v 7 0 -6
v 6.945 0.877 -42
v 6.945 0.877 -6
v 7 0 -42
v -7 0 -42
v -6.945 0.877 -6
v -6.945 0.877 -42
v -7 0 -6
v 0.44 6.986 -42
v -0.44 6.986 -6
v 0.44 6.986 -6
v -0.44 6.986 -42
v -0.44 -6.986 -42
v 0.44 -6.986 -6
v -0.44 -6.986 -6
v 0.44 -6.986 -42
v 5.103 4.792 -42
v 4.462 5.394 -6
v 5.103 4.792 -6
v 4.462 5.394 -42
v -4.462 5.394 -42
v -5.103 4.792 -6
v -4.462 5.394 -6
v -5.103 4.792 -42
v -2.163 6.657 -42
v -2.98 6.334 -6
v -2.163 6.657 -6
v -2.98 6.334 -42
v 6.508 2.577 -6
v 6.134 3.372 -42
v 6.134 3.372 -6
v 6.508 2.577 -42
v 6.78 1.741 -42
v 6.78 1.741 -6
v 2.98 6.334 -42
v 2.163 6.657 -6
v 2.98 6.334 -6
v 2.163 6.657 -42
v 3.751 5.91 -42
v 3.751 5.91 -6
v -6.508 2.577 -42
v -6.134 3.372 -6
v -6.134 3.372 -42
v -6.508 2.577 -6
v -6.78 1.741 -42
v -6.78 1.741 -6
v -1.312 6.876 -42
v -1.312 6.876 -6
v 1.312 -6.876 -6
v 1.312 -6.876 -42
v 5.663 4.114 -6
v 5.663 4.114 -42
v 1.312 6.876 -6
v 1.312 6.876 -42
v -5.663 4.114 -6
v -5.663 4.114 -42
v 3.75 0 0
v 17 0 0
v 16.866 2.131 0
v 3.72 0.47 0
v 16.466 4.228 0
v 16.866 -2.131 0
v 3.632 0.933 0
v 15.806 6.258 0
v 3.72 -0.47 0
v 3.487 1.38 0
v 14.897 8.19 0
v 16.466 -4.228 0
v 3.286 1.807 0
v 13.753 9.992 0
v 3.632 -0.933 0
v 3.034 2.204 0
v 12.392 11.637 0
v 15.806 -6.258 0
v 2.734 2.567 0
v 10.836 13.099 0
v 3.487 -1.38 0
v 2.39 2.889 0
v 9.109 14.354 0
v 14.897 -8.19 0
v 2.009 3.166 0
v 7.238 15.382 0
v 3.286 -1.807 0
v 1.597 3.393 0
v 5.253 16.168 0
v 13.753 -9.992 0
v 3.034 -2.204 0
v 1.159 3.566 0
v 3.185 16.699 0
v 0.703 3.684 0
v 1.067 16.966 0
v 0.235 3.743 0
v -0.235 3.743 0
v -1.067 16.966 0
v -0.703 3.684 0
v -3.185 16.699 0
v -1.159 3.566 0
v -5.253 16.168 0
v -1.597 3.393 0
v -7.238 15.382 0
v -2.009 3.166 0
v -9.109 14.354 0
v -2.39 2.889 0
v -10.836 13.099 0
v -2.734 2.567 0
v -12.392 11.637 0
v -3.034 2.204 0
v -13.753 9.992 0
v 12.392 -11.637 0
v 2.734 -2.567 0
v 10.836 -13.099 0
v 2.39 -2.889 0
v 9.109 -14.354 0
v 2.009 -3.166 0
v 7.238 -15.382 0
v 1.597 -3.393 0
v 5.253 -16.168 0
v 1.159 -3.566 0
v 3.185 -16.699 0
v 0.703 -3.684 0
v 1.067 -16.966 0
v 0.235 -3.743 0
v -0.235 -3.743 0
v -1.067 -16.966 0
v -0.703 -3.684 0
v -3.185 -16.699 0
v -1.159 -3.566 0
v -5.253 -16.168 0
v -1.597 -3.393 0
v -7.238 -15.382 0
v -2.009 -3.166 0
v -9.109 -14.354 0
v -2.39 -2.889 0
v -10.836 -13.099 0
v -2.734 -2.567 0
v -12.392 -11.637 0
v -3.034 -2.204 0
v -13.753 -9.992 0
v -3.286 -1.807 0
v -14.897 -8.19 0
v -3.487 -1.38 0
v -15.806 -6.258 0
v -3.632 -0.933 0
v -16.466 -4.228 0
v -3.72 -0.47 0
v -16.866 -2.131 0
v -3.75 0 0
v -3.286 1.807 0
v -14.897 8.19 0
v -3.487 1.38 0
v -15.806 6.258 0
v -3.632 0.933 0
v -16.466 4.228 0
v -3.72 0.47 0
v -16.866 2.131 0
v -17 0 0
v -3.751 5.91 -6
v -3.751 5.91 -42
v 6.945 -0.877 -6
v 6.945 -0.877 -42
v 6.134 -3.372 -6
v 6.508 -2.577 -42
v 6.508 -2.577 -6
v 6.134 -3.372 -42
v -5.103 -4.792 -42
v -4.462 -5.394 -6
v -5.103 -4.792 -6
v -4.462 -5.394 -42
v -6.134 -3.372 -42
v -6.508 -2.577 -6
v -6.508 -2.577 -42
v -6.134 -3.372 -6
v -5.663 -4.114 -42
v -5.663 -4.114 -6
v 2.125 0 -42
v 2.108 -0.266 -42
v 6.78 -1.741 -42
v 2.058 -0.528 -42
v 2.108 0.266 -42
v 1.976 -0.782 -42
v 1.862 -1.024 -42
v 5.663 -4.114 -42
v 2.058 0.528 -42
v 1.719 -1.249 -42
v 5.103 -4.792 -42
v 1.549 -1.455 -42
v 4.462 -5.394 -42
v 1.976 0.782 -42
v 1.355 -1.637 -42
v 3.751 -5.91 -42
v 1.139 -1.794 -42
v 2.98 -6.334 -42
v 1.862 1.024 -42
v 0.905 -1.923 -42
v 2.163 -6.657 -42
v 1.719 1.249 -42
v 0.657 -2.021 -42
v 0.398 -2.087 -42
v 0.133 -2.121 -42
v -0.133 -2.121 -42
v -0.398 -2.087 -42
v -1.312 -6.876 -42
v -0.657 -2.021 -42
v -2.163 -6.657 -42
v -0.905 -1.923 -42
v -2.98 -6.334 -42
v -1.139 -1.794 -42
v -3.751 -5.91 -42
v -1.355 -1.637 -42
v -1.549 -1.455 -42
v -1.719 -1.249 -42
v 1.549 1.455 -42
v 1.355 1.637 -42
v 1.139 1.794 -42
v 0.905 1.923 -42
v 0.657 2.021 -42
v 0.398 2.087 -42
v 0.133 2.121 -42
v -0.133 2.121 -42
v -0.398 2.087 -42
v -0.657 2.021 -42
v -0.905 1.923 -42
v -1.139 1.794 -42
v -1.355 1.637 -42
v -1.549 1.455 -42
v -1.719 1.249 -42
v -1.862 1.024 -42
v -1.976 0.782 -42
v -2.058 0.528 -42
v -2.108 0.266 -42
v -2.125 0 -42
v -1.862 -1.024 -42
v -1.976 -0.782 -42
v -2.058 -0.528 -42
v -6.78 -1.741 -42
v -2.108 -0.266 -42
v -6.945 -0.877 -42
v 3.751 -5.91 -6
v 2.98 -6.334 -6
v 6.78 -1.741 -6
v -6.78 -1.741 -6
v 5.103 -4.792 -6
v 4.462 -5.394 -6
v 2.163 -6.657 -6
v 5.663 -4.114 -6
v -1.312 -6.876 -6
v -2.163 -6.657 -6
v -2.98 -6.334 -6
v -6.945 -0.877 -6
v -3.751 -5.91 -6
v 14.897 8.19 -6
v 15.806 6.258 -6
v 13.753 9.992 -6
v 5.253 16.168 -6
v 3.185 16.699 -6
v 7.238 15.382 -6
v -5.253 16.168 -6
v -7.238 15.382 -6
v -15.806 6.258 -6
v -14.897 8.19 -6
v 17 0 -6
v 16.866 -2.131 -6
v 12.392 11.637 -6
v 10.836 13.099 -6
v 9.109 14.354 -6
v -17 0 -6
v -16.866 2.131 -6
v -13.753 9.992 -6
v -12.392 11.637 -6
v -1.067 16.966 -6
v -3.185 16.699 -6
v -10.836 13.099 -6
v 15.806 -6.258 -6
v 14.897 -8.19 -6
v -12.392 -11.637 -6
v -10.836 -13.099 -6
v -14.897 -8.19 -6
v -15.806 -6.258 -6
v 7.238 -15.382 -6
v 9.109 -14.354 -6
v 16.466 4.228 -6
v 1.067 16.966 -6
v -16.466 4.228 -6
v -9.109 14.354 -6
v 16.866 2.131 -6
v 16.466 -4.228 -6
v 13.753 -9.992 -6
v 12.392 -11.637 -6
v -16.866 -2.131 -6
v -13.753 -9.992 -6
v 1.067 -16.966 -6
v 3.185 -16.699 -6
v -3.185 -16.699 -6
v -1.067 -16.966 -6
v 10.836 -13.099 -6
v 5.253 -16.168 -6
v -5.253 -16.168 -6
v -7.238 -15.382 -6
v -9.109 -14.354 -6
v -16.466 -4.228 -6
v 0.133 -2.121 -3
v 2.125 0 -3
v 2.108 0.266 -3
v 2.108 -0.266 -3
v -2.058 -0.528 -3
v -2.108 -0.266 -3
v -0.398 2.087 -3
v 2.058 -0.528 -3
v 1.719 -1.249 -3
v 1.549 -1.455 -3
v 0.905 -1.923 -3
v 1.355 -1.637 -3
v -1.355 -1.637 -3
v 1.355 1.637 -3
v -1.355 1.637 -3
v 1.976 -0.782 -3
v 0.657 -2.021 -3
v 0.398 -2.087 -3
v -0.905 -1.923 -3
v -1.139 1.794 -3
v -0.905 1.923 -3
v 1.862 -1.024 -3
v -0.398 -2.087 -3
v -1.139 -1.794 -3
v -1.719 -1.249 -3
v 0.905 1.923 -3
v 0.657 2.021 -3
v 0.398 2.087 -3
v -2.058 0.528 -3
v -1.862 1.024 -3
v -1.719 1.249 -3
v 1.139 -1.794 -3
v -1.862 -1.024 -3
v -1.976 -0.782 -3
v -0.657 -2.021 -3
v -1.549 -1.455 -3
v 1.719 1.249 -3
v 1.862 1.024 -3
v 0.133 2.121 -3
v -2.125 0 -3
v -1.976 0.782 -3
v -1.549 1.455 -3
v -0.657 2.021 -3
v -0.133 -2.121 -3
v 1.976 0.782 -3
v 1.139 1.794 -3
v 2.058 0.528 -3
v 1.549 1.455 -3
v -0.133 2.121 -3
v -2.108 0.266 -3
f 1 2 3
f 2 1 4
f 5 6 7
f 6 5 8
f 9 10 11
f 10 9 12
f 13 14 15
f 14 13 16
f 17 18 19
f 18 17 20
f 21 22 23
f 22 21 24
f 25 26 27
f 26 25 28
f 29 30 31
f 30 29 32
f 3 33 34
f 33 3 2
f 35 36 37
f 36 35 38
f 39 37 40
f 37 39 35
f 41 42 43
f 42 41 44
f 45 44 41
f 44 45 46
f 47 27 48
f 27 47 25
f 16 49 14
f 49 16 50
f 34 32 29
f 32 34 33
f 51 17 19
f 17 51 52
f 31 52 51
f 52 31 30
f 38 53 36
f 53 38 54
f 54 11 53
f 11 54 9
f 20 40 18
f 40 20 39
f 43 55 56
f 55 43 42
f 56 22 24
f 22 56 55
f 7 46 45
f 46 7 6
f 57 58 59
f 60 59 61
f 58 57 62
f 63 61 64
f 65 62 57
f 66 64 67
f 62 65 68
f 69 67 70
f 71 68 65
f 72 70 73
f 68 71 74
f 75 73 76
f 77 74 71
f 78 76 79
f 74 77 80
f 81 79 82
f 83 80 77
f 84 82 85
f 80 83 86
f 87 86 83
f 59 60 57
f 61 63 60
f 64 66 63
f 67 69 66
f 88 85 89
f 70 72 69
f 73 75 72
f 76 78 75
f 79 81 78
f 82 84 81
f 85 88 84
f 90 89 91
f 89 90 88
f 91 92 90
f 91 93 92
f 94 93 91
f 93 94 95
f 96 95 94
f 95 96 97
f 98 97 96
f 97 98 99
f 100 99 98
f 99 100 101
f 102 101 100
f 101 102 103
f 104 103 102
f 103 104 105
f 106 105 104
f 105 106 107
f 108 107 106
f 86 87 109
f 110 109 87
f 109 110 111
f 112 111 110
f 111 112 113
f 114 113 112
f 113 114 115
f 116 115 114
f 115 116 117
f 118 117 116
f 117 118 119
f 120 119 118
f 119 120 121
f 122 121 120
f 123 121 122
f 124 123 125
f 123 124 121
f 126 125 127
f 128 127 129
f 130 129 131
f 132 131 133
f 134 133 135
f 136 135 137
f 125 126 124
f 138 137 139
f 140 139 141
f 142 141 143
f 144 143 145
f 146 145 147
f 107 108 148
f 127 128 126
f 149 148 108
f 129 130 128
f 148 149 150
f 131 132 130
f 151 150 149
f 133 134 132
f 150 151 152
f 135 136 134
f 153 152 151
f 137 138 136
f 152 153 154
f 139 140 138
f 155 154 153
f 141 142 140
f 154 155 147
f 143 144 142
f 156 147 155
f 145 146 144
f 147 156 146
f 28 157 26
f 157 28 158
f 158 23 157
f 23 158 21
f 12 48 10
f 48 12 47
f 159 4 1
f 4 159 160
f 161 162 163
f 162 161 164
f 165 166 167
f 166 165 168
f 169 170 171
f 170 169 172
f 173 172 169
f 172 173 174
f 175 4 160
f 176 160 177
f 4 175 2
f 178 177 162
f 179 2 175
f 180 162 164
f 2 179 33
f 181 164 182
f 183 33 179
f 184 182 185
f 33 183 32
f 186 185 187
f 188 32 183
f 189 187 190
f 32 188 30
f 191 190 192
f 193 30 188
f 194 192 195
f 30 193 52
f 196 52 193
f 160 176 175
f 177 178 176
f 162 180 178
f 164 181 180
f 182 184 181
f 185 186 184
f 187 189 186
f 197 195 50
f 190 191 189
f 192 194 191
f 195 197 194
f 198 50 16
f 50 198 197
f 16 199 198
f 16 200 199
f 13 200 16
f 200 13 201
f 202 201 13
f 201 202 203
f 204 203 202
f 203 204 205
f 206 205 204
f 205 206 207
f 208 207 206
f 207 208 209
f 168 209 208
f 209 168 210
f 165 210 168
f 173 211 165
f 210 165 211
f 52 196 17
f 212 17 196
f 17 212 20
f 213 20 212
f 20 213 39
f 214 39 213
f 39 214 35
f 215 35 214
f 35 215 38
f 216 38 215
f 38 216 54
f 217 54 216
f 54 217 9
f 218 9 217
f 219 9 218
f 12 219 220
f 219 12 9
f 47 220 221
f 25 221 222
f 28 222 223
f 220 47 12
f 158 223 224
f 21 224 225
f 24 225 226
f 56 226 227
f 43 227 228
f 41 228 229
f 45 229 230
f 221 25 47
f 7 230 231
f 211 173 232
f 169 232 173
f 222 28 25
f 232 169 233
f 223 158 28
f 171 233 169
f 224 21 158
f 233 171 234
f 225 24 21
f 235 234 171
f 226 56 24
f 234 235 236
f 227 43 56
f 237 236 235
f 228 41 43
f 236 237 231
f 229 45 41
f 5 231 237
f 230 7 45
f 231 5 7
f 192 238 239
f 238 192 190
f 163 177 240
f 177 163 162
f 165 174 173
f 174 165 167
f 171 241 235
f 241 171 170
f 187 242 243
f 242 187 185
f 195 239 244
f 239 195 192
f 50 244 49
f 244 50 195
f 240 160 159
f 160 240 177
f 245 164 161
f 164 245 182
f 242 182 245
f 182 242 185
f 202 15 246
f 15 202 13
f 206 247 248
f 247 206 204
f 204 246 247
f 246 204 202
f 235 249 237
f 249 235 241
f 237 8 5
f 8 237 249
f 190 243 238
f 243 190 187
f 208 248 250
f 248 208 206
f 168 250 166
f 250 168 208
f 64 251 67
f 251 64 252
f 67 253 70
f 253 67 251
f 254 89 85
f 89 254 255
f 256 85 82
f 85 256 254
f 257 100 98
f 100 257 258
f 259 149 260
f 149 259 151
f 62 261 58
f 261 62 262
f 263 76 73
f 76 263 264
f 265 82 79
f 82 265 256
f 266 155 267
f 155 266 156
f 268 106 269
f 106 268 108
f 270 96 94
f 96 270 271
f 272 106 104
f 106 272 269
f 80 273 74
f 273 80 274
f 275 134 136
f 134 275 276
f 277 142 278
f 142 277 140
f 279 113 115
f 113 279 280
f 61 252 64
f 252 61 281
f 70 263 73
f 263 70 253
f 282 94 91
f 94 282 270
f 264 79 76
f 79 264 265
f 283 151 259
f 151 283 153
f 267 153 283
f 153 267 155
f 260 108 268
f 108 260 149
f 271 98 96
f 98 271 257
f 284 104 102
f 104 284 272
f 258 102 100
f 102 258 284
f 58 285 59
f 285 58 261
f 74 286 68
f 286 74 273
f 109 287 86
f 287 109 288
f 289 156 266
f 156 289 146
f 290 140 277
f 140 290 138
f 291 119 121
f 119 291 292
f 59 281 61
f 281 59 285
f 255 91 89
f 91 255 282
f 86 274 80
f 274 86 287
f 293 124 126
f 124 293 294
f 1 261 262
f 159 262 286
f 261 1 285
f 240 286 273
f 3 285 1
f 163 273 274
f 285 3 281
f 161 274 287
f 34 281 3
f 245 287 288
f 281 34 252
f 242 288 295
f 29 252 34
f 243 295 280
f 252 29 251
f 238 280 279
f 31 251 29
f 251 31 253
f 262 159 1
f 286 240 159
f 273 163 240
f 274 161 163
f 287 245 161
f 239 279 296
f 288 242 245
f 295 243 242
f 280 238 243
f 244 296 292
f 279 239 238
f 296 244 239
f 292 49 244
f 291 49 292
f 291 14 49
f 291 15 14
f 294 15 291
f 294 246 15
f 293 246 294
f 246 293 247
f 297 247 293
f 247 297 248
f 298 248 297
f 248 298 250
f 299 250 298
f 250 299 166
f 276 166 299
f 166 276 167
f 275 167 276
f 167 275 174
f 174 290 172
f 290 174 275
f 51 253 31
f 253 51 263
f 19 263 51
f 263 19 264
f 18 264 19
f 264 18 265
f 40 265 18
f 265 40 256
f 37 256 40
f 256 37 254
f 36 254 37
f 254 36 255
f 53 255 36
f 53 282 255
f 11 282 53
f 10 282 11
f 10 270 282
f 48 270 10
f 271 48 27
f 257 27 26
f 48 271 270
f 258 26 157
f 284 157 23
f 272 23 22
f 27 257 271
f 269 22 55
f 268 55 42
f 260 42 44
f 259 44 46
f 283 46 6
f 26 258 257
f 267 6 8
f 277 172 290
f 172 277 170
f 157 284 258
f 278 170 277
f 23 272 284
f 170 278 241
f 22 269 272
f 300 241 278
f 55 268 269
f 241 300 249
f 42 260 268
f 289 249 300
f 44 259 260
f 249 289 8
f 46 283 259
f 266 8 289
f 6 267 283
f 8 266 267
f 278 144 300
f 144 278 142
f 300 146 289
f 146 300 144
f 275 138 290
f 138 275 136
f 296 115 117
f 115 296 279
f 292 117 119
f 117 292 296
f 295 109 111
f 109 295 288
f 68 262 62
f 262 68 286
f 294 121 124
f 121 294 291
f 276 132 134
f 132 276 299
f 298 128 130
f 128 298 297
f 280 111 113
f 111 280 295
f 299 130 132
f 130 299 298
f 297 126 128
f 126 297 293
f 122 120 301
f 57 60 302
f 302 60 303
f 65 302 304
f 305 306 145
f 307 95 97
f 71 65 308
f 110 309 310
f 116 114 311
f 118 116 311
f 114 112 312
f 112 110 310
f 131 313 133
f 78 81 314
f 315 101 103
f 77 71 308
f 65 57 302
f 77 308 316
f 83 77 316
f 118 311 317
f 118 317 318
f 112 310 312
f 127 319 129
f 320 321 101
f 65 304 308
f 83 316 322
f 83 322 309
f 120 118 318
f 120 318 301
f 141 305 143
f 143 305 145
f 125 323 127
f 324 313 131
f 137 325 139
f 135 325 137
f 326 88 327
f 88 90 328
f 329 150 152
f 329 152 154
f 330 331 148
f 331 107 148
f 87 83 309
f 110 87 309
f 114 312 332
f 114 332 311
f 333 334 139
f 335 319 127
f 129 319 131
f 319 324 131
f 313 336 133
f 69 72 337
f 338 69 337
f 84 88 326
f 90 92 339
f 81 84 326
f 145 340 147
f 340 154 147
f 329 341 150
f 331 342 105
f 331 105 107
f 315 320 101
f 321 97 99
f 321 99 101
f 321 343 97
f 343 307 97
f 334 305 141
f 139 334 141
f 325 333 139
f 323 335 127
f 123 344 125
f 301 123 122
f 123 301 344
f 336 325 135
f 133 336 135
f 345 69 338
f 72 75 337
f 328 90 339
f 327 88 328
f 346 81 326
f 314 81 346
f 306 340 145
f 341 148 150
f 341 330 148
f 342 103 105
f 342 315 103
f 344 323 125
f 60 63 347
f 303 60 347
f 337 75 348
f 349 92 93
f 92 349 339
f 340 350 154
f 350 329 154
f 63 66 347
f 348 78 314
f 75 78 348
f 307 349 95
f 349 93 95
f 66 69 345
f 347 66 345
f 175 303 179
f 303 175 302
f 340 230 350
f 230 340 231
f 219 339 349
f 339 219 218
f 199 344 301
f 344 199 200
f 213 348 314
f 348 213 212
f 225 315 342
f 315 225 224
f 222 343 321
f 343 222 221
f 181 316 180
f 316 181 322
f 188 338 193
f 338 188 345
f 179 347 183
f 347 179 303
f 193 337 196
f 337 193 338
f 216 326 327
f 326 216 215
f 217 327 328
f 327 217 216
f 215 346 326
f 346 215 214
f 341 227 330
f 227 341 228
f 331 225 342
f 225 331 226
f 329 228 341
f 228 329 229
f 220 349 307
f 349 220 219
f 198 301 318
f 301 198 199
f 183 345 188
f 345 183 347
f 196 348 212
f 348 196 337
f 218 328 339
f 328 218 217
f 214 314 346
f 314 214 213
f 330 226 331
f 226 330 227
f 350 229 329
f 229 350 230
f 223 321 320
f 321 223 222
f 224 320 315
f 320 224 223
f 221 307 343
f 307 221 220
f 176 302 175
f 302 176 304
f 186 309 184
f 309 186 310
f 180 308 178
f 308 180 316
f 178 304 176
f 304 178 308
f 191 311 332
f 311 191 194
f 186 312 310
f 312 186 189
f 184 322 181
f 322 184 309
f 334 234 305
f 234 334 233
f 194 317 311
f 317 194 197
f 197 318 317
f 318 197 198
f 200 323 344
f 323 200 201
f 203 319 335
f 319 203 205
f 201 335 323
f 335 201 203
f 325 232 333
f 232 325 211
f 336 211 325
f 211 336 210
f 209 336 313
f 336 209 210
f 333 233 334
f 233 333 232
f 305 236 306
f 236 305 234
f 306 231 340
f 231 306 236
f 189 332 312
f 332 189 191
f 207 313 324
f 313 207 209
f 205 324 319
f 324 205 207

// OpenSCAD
$fn = 50;


difference() {
	union() {
		translate(v = [0, 0, -42.0000000000]) {
			cylinder(h = 42, r = 7.0000000000);
		}
		translate(v = [0, 0, -6.0000000000]) {
			cylinder(h = 6, r = 17.0000000000);
		}
	}
	union() {
		translate(v = [0, 0, 0]) {
			rotate(a = [0, 0, 0]) {
				difference() {
					union() {
						#translate(v = [0, 0, -42.0000000000]) {
							cylinder(h = 42, r = 2.0000000000);
						}
						#translate(v = [0, 0, -3]) {
							cylinder(h = 3, r1 = 2.1250000000, r2 = 3.7500000000);
						}
						#translate(v = [0, 0, -42.0000000000]) {
							cylinder(h = 42, r = 2.1250000000);
						}
						#translate(v = [0, 0, -42.0000000000]) {
							cylinder(h = 42, r = 2.0000000000);
						}
					}
					union();
				}
			}
		}
	}
}
